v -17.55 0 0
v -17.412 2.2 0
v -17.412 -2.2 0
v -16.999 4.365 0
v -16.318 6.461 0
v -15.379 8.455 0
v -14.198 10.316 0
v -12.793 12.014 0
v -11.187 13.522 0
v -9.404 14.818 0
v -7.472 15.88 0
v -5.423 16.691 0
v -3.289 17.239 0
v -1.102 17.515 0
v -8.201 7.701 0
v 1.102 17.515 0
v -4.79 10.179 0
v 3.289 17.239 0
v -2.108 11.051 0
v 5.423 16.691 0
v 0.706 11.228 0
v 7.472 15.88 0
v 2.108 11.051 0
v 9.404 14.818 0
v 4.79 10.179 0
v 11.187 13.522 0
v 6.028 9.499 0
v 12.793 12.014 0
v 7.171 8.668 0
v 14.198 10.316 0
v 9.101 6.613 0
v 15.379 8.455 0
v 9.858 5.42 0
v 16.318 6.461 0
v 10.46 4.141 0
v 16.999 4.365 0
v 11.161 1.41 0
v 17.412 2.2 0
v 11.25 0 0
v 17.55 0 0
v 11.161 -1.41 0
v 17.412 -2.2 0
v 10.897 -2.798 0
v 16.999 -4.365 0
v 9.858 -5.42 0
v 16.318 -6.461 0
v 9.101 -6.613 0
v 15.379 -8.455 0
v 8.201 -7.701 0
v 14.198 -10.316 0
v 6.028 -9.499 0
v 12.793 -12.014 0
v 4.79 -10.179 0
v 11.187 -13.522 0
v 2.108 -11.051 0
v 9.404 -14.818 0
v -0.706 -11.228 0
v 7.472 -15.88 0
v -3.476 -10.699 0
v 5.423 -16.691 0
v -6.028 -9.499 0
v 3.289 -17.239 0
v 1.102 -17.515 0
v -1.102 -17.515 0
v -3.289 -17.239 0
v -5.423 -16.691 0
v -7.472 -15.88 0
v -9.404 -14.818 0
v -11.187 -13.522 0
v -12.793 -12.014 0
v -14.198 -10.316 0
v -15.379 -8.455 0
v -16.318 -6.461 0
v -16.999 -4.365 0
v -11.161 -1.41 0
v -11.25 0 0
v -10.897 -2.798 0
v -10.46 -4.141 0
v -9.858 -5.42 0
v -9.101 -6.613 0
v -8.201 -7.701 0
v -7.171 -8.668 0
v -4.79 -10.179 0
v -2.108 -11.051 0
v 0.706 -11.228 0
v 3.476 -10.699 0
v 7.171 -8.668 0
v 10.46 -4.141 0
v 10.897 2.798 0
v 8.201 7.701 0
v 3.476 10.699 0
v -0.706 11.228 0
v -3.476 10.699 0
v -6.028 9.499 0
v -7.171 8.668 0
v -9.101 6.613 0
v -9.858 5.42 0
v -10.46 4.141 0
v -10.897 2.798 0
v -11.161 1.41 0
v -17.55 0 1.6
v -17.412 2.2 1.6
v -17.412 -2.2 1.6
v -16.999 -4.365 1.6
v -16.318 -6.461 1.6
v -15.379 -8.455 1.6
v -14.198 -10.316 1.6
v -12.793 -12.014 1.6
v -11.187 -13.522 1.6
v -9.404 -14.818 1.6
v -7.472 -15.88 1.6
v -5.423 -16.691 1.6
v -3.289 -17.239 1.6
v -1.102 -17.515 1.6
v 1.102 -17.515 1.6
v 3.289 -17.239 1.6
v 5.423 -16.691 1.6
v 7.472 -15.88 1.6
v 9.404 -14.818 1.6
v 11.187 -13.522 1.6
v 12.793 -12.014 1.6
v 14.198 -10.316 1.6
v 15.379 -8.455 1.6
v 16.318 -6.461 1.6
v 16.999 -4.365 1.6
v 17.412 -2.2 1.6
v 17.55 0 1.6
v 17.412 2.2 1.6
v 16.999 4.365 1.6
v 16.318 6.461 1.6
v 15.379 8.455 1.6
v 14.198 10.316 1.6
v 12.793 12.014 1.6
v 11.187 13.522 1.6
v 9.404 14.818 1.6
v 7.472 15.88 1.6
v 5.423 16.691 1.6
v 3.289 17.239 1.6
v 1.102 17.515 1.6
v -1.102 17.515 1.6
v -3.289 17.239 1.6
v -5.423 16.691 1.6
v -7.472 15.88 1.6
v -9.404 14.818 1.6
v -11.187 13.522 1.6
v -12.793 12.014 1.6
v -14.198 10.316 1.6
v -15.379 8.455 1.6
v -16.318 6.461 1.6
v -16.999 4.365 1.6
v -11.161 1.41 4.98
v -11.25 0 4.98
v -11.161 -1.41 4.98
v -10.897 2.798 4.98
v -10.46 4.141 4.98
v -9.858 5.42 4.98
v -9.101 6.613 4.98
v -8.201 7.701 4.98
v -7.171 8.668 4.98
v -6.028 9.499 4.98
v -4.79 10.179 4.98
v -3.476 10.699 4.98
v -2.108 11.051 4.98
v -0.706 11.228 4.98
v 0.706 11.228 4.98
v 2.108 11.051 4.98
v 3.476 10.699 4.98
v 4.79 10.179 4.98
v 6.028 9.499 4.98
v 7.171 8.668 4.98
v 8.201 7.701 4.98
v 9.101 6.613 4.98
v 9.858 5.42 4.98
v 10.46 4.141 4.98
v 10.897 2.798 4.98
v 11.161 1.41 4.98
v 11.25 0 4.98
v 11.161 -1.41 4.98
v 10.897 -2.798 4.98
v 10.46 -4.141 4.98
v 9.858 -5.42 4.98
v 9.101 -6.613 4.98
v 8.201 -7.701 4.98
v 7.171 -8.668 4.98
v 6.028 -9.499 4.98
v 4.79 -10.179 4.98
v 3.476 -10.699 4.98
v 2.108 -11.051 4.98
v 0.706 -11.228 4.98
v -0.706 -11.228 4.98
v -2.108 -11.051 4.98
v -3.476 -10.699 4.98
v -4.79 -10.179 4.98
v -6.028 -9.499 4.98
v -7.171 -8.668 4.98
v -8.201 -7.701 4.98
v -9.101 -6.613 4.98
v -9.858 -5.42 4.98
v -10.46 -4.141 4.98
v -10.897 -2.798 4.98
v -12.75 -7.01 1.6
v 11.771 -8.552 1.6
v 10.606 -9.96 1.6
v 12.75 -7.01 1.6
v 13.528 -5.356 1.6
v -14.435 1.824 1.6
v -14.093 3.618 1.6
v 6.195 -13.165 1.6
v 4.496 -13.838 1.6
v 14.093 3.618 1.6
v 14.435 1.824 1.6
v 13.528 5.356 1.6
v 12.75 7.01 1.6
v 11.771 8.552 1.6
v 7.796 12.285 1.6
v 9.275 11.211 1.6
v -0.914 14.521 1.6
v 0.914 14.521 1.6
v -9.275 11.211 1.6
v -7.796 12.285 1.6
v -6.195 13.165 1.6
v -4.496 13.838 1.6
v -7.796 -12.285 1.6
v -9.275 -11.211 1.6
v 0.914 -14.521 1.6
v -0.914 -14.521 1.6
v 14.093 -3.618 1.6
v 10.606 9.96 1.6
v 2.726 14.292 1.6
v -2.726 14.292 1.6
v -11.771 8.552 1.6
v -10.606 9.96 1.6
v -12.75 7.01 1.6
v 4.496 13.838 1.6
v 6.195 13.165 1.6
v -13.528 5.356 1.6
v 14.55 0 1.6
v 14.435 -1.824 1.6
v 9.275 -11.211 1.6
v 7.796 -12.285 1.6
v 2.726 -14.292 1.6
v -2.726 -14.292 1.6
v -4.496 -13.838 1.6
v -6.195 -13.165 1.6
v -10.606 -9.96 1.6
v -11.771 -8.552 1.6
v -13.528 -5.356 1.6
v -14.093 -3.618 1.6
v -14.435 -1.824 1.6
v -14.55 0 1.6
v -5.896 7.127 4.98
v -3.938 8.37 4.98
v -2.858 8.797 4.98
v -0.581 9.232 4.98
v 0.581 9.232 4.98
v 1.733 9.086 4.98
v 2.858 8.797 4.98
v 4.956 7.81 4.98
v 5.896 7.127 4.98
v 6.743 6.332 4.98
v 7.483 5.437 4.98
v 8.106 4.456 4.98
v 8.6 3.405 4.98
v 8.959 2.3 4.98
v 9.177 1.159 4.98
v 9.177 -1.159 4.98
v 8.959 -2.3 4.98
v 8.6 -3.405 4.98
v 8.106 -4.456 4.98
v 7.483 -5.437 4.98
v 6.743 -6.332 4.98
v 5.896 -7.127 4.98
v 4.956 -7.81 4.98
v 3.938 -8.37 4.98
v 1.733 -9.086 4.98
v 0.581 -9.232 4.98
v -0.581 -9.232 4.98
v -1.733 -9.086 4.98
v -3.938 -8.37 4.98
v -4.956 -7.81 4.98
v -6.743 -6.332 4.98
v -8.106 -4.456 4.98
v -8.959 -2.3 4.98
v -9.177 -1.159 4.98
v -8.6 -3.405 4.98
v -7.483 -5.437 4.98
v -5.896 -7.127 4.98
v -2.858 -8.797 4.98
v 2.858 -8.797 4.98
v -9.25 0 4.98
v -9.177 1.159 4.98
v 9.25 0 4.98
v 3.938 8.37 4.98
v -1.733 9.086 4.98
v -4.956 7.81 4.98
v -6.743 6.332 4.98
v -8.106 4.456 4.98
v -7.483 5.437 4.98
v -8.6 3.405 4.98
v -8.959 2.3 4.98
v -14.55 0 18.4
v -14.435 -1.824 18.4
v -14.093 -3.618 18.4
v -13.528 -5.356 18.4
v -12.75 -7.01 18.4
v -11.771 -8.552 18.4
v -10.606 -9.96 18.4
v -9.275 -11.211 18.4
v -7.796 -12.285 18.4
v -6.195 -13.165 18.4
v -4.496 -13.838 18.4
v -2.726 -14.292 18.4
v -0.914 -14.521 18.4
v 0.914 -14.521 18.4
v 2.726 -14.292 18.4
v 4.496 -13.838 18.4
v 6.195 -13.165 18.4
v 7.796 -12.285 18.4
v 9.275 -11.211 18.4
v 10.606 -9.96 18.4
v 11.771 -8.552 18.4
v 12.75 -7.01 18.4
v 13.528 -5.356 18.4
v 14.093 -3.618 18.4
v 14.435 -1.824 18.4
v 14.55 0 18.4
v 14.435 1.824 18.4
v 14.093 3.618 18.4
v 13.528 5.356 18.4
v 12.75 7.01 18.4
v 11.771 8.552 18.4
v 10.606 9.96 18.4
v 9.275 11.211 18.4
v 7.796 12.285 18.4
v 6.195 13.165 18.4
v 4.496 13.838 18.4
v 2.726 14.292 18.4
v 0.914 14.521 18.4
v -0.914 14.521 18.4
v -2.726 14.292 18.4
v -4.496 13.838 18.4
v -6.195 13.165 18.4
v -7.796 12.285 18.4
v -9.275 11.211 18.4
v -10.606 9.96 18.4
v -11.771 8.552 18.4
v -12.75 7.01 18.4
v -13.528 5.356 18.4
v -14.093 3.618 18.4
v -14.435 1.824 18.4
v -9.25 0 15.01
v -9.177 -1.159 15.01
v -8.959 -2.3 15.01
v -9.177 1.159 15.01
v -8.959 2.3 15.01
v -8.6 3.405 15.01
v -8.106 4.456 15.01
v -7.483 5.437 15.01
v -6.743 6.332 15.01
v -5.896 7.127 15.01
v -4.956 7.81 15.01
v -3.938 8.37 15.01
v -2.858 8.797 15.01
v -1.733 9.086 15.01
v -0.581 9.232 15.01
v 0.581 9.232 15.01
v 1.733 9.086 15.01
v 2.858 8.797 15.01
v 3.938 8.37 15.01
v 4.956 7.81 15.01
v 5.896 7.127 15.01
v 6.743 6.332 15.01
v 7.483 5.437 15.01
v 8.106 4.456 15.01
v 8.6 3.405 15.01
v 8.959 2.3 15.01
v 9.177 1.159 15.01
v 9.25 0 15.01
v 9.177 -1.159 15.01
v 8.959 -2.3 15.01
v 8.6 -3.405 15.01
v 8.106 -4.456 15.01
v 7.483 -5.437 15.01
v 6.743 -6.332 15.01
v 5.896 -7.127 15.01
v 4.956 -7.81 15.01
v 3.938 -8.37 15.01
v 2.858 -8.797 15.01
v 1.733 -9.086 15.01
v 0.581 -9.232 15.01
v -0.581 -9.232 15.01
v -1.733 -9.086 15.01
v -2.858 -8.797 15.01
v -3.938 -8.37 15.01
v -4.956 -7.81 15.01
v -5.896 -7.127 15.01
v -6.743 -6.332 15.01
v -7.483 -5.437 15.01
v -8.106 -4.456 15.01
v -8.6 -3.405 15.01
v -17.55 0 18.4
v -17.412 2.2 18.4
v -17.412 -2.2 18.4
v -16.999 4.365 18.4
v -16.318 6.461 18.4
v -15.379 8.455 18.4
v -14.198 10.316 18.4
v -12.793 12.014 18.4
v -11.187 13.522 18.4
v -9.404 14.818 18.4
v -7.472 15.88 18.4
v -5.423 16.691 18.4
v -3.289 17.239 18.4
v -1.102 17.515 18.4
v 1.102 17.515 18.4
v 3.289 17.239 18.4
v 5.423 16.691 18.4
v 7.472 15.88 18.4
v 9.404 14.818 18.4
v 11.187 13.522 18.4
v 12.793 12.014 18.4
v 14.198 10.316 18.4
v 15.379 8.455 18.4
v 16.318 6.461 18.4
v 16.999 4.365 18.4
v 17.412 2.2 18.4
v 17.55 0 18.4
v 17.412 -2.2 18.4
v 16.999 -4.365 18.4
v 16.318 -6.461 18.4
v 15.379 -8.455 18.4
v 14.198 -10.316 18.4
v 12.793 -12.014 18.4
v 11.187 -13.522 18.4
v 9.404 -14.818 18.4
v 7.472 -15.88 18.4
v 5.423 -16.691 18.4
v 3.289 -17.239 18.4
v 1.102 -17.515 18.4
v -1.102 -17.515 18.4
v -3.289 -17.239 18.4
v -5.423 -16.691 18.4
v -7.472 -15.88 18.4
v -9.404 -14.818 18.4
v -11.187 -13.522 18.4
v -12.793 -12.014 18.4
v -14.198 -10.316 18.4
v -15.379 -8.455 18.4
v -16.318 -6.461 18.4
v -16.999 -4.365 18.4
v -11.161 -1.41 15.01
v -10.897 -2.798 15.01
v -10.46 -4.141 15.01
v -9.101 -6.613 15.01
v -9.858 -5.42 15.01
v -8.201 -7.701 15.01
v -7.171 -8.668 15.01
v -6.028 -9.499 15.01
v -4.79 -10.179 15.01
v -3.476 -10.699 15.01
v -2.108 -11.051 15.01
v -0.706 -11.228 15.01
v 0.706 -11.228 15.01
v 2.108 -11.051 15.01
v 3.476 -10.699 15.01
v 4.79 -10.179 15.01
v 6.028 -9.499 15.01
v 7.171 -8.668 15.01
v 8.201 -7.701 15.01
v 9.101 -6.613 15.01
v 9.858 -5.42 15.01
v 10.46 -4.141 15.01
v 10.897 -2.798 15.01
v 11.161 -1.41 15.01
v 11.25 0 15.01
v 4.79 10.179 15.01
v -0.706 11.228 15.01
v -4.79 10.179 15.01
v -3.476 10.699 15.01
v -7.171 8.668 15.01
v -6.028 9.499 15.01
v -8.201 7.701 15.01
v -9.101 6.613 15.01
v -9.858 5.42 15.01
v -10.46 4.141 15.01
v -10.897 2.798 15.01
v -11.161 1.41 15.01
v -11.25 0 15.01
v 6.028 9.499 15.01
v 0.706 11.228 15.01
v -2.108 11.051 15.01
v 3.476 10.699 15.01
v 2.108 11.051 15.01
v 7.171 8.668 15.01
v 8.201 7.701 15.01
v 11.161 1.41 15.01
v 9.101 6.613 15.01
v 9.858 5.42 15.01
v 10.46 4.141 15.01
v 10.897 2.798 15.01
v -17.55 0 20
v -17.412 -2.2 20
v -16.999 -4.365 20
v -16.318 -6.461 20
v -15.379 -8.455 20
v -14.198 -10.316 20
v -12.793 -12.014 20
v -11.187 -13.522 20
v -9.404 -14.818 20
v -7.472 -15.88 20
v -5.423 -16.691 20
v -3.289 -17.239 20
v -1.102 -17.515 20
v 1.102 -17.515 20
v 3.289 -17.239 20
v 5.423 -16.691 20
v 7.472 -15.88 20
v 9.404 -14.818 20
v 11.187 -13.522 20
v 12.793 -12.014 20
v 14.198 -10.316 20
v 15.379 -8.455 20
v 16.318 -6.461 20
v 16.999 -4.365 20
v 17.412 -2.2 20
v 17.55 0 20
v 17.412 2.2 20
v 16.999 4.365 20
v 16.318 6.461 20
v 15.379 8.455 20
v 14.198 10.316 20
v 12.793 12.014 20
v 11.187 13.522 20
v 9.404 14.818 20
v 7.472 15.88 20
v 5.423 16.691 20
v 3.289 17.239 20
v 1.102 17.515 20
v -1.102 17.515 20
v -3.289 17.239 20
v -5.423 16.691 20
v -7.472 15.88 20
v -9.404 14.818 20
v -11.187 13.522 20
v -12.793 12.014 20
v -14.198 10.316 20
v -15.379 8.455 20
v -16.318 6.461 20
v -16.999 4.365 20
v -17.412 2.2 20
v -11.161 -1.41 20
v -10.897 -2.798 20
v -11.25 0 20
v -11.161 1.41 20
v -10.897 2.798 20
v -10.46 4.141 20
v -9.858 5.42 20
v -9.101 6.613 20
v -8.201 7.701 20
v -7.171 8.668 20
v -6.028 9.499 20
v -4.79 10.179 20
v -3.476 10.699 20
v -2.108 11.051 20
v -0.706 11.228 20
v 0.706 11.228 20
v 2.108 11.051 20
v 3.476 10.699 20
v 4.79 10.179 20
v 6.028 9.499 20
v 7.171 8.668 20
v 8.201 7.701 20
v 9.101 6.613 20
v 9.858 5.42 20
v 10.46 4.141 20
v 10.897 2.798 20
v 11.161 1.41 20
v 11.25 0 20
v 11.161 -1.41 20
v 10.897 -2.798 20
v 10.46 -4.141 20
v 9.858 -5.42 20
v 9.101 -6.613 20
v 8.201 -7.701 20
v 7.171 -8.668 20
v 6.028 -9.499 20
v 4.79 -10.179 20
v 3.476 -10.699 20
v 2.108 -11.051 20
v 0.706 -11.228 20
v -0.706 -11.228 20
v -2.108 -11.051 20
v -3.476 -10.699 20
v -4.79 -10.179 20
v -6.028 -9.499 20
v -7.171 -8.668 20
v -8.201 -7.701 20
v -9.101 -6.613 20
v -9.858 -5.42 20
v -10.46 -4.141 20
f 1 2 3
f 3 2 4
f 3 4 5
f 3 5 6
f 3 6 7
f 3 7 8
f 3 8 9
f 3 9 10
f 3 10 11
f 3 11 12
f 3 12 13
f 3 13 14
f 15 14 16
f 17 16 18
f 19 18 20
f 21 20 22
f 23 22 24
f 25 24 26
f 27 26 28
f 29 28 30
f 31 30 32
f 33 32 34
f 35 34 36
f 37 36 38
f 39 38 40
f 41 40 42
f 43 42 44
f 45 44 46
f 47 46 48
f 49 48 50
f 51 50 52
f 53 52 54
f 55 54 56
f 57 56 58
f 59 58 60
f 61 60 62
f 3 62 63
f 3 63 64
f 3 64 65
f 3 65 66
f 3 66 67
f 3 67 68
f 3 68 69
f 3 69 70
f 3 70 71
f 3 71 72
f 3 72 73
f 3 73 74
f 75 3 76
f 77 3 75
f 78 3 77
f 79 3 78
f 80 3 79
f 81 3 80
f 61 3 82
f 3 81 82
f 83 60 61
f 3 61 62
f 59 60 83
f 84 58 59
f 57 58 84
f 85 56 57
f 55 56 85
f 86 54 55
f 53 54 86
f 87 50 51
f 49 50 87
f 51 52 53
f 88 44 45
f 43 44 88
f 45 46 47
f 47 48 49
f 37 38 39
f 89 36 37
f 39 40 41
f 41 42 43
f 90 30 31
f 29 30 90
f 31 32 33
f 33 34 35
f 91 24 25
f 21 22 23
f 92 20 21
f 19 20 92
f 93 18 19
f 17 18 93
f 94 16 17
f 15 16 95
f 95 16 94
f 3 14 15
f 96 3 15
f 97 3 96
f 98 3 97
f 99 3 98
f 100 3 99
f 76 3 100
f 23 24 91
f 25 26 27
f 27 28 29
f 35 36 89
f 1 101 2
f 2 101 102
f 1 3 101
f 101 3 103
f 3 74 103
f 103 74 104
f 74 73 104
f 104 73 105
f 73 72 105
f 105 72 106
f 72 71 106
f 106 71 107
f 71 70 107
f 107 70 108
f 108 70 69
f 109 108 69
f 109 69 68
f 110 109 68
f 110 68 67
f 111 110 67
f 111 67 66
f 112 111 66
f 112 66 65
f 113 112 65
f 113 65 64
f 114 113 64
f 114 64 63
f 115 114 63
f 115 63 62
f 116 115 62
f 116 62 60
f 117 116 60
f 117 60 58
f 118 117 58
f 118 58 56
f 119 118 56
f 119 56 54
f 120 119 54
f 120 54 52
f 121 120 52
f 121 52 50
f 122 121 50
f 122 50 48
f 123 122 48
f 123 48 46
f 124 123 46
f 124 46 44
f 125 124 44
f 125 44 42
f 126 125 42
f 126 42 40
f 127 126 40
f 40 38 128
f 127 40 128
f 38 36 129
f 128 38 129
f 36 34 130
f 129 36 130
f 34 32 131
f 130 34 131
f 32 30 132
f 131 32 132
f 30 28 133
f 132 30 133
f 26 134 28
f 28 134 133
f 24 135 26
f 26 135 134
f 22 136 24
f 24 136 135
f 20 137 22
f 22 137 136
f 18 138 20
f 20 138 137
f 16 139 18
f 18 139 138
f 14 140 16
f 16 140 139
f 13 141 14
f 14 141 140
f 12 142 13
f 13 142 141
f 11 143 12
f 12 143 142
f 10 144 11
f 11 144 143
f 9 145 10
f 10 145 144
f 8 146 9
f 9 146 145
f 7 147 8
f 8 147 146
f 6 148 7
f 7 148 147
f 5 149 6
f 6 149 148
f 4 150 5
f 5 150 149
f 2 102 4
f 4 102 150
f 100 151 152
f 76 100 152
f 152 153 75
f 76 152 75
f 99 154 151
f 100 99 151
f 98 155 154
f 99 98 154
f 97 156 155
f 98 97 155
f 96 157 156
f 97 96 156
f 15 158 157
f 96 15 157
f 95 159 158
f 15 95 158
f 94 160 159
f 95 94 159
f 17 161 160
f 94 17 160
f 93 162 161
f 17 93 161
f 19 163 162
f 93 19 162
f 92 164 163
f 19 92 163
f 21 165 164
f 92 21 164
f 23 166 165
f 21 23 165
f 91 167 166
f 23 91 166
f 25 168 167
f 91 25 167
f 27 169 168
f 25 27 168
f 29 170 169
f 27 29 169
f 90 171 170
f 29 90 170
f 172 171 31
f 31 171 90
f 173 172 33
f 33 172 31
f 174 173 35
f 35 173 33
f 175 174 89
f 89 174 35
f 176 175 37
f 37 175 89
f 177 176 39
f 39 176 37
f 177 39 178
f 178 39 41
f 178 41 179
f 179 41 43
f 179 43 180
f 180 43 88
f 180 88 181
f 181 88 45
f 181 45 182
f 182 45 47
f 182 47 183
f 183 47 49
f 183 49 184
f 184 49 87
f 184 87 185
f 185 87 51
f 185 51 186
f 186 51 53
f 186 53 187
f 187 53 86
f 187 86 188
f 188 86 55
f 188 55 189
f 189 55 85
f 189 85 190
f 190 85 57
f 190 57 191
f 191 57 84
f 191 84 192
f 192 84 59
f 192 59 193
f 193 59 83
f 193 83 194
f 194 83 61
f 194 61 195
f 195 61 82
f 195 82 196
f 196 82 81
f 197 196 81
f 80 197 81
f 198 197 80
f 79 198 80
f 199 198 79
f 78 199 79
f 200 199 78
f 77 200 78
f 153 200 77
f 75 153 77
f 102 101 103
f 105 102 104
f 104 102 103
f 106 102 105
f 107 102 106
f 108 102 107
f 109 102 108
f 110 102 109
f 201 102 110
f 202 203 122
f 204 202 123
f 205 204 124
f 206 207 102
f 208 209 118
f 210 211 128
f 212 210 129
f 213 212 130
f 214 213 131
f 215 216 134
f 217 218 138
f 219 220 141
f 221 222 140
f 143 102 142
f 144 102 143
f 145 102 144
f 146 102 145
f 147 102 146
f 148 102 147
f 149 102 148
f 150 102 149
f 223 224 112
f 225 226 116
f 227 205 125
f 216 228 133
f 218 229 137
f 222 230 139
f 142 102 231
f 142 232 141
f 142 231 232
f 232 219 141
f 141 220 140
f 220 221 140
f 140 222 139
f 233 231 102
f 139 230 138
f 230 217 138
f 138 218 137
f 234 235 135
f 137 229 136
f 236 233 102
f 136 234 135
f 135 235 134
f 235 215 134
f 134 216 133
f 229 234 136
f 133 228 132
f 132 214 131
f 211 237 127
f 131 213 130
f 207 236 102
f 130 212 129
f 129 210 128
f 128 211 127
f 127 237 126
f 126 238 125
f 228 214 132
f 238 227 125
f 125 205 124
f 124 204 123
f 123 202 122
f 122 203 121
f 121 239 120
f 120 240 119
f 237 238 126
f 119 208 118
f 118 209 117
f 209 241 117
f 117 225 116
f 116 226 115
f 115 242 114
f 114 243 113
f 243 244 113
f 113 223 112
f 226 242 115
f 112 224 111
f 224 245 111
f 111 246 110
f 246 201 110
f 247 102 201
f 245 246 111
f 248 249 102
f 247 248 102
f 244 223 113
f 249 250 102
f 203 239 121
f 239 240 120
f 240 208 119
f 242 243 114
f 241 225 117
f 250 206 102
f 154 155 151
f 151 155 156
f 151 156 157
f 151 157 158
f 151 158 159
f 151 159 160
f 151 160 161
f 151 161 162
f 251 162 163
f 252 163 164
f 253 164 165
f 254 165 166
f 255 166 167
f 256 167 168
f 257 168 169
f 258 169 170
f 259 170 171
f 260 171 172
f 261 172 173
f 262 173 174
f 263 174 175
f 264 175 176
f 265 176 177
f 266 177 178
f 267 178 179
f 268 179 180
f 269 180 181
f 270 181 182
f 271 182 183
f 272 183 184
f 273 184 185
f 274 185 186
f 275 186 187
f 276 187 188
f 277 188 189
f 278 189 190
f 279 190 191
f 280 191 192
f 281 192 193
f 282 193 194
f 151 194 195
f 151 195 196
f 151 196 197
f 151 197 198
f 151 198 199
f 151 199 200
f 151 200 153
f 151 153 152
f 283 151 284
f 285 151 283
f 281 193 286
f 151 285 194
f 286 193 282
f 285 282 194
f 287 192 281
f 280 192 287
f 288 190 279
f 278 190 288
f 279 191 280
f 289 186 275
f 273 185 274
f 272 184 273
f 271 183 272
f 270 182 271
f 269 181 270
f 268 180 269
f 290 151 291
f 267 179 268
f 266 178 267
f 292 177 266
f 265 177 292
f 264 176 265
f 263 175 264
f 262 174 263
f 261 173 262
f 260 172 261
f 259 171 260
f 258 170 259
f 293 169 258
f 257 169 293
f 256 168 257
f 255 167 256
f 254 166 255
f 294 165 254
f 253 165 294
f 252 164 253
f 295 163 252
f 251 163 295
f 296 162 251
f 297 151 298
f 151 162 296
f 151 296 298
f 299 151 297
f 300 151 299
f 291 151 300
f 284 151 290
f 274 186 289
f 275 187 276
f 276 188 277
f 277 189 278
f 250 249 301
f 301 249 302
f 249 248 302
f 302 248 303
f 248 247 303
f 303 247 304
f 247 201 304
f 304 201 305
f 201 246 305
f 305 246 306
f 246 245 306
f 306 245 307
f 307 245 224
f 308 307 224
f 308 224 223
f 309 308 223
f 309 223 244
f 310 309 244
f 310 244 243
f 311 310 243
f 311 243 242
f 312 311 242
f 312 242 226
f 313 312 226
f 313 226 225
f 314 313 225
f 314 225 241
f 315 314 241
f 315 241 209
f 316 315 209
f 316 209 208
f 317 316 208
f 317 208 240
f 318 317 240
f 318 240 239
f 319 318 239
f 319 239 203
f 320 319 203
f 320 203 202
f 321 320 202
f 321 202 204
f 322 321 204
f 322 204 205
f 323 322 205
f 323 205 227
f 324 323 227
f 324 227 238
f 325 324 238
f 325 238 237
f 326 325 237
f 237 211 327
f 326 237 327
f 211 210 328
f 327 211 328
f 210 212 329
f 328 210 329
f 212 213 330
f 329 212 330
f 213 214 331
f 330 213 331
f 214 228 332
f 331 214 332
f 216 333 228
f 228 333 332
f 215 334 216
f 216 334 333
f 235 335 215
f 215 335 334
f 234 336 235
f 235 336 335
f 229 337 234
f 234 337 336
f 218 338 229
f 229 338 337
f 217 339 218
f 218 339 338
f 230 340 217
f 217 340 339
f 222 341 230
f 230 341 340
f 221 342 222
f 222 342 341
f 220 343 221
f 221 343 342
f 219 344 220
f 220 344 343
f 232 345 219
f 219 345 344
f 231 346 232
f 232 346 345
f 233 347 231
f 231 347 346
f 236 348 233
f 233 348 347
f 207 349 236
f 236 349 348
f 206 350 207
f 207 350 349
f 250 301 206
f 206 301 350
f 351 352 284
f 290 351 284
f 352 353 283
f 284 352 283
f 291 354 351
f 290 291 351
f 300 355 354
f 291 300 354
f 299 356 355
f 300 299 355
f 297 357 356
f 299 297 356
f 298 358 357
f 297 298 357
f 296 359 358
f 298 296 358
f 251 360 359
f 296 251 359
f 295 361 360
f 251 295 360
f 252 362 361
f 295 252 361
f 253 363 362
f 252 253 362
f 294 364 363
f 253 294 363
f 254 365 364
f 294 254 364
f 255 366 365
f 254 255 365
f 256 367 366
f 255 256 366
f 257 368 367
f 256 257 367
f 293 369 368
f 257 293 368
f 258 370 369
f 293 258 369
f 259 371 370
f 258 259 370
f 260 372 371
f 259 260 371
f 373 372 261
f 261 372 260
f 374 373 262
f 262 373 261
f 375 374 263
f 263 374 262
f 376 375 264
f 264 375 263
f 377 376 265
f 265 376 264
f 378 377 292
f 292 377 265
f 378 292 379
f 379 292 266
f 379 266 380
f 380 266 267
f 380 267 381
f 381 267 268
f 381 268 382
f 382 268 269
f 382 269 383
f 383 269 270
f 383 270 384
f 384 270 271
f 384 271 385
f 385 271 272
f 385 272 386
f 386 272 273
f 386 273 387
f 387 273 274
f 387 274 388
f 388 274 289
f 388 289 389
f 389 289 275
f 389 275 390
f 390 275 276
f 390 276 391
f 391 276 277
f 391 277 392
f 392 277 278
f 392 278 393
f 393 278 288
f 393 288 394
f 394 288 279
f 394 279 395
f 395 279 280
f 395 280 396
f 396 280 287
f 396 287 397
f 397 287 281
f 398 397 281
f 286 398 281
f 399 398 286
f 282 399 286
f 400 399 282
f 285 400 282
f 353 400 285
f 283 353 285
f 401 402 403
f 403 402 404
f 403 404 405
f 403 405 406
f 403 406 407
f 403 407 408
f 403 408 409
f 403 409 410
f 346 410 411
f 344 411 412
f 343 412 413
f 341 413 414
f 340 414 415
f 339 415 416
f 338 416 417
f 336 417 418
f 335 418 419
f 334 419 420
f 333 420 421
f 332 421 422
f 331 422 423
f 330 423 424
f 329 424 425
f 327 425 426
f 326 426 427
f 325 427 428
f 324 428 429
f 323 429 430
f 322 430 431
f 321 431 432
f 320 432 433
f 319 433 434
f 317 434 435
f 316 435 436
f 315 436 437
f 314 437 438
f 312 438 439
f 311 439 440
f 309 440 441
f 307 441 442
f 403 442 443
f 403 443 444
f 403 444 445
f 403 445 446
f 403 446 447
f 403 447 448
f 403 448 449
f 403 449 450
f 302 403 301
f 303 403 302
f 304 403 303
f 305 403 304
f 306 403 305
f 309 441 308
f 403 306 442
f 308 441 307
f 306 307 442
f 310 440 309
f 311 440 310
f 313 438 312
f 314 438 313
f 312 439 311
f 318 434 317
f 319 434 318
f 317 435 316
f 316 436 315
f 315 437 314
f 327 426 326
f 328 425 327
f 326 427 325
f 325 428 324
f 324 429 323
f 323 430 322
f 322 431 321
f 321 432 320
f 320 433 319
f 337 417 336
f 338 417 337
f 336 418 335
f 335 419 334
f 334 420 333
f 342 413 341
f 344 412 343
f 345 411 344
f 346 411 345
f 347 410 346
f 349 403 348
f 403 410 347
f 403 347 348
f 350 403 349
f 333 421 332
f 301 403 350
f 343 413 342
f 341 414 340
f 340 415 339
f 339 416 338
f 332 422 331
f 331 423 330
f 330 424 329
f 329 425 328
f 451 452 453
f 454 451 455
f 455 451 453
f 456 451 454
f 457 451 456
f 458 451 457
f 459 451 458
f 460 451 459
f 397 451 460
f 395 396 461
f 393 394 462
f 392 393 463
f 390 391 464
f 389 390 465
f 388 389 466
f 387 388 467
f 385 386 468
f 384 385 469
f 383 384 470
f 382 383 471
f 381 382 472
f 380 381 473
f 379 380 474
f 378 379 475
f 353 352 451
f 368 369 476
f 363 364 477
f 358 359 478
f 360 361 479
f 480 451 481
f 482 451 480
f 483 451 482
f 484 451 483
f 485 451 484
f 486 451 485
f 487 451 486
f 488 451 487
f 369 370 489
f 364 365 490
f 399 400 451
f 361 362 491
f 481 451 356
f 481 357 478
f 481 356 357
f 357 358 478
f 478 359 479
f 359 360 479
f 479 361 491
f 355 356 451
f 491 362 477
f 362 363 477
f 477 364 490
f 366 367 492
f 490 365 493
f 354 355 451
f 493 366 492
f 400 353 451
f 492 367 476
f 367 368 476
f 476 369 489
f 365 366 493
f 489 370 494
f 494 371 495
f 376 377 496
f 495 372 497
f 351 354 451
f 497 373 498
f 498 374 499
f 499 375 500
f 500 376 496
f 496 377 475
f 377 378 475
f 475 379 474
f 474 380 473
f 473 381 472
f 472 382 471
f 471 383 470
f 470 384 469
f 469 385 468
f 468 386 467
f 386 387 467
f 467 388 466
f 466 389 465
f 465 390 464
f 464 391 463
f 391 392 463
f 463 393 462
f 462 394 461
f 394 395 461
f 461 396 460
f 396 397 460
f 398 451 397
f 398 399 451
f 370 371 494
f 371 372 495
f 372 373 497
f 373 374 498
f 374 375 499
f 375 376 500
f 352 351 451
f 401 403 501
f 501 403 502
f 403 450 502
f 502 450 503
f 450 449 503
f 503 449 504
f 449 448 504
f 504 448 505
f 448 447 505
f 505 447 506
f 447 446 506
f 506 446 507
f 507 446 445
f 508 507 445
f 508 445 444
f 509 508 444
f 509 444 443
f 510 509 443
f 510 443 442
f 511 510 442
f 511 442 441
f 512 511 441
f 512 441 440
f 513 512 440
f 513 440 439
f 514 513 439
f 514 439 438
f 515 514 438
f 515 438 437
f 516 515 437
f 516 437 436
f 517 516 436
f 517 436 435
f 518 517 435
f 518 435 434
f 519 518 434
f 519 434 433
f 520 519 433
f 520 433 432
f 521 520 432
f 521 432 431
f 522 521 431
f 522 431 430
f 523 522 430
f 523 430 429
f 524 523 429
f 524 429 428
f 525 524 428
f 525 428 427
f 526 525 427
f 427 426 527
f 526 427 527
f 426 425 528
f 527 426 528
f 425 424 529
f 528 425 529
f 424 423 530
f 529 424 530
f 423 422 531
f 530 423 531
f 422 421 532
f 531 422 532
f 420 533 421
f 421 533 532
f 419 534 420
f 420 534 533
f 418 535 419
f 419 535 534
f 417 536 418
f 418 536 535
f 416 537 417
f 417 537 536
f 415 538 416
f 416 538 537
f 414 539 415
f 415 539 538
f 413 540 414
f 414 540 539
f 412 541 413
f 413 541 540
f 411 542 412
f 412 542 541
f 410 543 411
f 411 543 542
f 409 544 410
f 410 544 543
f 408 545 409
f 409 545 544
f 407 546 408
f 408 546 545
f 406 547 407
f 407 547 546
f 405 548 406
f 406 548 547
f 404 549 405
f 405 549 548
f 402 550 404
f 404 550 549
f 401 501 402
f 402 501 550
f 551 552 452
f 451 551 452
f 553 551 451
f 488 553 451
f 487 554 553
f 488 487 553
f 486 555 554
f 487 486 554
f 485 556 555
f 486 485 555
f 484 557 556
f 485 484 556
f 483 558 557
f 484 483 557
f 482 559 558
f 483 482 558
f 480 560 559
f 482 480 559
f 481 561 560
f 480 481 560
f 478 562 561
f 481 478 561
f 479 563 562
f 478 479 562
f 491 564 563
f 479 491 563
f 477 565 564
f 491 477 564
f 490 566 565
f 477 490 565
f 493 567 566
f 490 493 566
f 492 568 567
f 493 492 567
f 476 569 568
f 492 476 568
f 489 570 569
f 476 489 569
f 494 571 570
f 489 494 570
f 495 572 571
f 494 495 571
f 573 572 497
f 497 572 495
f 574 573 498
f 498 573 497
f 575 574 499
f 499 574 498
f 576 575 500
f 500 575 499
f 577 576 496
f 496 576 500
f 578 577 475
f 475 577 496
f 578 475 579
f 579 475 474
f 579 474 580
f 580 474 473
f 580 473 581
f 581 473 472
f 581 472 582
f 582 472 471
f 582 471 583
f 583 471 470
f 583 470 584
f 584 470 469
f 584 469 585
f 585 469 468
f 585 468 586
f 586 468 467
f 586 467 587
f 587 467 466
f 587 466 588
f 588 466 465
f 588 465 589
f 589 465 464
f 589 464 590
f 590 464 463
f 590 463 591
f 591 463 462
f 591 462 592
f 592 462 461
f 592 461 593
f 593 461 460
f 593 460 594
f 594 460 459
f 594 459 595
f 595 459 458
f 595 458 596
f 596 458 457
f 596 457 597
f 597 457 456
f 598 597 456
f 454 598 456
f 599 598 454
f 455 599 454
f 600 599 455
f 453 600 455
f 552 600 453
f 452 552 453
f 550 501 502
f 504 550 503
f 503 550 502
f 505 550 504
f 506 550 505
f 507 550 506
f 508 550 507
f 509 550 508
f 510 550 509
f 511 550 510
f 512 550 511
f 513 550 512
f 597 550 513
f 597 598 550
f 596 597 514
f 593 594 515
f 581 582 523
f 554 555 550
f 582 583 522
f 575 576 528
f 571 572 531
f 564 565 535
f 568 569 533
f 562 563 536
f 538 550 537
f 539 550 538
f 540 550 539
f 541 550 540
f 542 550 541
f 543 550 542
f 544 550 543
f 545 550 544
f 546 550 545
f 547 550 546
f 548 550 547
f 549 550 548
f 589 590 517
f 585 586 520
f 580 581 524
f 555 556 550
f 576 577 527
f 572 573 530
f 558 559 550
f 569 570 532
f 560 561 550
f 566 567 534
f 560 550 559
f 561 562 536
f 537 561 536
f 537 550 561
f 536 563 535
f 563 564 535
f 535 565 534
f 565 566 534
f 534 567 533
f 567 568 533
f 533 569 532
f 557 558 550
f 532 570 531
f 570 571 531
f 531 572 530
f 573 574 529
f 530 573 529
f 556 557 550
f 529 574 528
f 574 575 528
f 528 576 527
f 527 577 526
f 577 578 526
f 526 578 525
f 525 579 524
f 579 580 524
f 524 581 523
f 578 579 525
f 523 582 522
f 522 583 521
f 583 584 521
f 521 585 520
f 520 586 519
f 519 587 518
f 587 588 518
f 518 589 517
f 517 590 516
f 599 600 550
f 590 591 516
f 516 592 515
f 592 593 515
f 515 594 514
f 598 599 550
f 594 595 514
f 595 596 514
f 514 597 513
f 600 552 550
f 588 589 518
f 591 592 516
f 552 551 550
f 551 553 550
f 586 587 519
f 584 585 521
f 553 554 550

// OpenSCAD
// f. beachler
// longevity software d.b.a. terawatt industries

bore_size = 22.2 + 0.3;
pulley_dia = 29.1;
pulley_width = 20;	// overall width including flange
flange_height = 3;
flange_width = 1.6;

module y_idler_pulley(id, od, w, fh, fw) {
	difference() {
		union() {
			// pulley wheel
			translate([0, 0, fw - 0.01]) cylinder(r = od / 2, h = w - fw * 2 + 0.02, $fn = 50);
			// flanges
			cylinder(r = od / 2 + fh, h = fw, $fn = 50);
			translate([0, 0, w - fw]) cylinder(r = od / 2 + fh, h = fw, $fn = 50);
		}
		// bore - 2mm
		translate([0, 0, -0.01]) cylinder(r = id / 2 - 2, h = w + 0.02, $fn = 50);
		// 608 bore
		translate([0, 0, -0.02]) cylinder(r = id / 2, h = 5, $fn = 50);
		translate([0, 0, w - 5 + 0.01]) cylinder(r = id / 2, h = 5, $fn = 50);
	}
}

y_idler_pulley(bore_size, pulley_dia, pulley_width, flange_height, flange_width);
